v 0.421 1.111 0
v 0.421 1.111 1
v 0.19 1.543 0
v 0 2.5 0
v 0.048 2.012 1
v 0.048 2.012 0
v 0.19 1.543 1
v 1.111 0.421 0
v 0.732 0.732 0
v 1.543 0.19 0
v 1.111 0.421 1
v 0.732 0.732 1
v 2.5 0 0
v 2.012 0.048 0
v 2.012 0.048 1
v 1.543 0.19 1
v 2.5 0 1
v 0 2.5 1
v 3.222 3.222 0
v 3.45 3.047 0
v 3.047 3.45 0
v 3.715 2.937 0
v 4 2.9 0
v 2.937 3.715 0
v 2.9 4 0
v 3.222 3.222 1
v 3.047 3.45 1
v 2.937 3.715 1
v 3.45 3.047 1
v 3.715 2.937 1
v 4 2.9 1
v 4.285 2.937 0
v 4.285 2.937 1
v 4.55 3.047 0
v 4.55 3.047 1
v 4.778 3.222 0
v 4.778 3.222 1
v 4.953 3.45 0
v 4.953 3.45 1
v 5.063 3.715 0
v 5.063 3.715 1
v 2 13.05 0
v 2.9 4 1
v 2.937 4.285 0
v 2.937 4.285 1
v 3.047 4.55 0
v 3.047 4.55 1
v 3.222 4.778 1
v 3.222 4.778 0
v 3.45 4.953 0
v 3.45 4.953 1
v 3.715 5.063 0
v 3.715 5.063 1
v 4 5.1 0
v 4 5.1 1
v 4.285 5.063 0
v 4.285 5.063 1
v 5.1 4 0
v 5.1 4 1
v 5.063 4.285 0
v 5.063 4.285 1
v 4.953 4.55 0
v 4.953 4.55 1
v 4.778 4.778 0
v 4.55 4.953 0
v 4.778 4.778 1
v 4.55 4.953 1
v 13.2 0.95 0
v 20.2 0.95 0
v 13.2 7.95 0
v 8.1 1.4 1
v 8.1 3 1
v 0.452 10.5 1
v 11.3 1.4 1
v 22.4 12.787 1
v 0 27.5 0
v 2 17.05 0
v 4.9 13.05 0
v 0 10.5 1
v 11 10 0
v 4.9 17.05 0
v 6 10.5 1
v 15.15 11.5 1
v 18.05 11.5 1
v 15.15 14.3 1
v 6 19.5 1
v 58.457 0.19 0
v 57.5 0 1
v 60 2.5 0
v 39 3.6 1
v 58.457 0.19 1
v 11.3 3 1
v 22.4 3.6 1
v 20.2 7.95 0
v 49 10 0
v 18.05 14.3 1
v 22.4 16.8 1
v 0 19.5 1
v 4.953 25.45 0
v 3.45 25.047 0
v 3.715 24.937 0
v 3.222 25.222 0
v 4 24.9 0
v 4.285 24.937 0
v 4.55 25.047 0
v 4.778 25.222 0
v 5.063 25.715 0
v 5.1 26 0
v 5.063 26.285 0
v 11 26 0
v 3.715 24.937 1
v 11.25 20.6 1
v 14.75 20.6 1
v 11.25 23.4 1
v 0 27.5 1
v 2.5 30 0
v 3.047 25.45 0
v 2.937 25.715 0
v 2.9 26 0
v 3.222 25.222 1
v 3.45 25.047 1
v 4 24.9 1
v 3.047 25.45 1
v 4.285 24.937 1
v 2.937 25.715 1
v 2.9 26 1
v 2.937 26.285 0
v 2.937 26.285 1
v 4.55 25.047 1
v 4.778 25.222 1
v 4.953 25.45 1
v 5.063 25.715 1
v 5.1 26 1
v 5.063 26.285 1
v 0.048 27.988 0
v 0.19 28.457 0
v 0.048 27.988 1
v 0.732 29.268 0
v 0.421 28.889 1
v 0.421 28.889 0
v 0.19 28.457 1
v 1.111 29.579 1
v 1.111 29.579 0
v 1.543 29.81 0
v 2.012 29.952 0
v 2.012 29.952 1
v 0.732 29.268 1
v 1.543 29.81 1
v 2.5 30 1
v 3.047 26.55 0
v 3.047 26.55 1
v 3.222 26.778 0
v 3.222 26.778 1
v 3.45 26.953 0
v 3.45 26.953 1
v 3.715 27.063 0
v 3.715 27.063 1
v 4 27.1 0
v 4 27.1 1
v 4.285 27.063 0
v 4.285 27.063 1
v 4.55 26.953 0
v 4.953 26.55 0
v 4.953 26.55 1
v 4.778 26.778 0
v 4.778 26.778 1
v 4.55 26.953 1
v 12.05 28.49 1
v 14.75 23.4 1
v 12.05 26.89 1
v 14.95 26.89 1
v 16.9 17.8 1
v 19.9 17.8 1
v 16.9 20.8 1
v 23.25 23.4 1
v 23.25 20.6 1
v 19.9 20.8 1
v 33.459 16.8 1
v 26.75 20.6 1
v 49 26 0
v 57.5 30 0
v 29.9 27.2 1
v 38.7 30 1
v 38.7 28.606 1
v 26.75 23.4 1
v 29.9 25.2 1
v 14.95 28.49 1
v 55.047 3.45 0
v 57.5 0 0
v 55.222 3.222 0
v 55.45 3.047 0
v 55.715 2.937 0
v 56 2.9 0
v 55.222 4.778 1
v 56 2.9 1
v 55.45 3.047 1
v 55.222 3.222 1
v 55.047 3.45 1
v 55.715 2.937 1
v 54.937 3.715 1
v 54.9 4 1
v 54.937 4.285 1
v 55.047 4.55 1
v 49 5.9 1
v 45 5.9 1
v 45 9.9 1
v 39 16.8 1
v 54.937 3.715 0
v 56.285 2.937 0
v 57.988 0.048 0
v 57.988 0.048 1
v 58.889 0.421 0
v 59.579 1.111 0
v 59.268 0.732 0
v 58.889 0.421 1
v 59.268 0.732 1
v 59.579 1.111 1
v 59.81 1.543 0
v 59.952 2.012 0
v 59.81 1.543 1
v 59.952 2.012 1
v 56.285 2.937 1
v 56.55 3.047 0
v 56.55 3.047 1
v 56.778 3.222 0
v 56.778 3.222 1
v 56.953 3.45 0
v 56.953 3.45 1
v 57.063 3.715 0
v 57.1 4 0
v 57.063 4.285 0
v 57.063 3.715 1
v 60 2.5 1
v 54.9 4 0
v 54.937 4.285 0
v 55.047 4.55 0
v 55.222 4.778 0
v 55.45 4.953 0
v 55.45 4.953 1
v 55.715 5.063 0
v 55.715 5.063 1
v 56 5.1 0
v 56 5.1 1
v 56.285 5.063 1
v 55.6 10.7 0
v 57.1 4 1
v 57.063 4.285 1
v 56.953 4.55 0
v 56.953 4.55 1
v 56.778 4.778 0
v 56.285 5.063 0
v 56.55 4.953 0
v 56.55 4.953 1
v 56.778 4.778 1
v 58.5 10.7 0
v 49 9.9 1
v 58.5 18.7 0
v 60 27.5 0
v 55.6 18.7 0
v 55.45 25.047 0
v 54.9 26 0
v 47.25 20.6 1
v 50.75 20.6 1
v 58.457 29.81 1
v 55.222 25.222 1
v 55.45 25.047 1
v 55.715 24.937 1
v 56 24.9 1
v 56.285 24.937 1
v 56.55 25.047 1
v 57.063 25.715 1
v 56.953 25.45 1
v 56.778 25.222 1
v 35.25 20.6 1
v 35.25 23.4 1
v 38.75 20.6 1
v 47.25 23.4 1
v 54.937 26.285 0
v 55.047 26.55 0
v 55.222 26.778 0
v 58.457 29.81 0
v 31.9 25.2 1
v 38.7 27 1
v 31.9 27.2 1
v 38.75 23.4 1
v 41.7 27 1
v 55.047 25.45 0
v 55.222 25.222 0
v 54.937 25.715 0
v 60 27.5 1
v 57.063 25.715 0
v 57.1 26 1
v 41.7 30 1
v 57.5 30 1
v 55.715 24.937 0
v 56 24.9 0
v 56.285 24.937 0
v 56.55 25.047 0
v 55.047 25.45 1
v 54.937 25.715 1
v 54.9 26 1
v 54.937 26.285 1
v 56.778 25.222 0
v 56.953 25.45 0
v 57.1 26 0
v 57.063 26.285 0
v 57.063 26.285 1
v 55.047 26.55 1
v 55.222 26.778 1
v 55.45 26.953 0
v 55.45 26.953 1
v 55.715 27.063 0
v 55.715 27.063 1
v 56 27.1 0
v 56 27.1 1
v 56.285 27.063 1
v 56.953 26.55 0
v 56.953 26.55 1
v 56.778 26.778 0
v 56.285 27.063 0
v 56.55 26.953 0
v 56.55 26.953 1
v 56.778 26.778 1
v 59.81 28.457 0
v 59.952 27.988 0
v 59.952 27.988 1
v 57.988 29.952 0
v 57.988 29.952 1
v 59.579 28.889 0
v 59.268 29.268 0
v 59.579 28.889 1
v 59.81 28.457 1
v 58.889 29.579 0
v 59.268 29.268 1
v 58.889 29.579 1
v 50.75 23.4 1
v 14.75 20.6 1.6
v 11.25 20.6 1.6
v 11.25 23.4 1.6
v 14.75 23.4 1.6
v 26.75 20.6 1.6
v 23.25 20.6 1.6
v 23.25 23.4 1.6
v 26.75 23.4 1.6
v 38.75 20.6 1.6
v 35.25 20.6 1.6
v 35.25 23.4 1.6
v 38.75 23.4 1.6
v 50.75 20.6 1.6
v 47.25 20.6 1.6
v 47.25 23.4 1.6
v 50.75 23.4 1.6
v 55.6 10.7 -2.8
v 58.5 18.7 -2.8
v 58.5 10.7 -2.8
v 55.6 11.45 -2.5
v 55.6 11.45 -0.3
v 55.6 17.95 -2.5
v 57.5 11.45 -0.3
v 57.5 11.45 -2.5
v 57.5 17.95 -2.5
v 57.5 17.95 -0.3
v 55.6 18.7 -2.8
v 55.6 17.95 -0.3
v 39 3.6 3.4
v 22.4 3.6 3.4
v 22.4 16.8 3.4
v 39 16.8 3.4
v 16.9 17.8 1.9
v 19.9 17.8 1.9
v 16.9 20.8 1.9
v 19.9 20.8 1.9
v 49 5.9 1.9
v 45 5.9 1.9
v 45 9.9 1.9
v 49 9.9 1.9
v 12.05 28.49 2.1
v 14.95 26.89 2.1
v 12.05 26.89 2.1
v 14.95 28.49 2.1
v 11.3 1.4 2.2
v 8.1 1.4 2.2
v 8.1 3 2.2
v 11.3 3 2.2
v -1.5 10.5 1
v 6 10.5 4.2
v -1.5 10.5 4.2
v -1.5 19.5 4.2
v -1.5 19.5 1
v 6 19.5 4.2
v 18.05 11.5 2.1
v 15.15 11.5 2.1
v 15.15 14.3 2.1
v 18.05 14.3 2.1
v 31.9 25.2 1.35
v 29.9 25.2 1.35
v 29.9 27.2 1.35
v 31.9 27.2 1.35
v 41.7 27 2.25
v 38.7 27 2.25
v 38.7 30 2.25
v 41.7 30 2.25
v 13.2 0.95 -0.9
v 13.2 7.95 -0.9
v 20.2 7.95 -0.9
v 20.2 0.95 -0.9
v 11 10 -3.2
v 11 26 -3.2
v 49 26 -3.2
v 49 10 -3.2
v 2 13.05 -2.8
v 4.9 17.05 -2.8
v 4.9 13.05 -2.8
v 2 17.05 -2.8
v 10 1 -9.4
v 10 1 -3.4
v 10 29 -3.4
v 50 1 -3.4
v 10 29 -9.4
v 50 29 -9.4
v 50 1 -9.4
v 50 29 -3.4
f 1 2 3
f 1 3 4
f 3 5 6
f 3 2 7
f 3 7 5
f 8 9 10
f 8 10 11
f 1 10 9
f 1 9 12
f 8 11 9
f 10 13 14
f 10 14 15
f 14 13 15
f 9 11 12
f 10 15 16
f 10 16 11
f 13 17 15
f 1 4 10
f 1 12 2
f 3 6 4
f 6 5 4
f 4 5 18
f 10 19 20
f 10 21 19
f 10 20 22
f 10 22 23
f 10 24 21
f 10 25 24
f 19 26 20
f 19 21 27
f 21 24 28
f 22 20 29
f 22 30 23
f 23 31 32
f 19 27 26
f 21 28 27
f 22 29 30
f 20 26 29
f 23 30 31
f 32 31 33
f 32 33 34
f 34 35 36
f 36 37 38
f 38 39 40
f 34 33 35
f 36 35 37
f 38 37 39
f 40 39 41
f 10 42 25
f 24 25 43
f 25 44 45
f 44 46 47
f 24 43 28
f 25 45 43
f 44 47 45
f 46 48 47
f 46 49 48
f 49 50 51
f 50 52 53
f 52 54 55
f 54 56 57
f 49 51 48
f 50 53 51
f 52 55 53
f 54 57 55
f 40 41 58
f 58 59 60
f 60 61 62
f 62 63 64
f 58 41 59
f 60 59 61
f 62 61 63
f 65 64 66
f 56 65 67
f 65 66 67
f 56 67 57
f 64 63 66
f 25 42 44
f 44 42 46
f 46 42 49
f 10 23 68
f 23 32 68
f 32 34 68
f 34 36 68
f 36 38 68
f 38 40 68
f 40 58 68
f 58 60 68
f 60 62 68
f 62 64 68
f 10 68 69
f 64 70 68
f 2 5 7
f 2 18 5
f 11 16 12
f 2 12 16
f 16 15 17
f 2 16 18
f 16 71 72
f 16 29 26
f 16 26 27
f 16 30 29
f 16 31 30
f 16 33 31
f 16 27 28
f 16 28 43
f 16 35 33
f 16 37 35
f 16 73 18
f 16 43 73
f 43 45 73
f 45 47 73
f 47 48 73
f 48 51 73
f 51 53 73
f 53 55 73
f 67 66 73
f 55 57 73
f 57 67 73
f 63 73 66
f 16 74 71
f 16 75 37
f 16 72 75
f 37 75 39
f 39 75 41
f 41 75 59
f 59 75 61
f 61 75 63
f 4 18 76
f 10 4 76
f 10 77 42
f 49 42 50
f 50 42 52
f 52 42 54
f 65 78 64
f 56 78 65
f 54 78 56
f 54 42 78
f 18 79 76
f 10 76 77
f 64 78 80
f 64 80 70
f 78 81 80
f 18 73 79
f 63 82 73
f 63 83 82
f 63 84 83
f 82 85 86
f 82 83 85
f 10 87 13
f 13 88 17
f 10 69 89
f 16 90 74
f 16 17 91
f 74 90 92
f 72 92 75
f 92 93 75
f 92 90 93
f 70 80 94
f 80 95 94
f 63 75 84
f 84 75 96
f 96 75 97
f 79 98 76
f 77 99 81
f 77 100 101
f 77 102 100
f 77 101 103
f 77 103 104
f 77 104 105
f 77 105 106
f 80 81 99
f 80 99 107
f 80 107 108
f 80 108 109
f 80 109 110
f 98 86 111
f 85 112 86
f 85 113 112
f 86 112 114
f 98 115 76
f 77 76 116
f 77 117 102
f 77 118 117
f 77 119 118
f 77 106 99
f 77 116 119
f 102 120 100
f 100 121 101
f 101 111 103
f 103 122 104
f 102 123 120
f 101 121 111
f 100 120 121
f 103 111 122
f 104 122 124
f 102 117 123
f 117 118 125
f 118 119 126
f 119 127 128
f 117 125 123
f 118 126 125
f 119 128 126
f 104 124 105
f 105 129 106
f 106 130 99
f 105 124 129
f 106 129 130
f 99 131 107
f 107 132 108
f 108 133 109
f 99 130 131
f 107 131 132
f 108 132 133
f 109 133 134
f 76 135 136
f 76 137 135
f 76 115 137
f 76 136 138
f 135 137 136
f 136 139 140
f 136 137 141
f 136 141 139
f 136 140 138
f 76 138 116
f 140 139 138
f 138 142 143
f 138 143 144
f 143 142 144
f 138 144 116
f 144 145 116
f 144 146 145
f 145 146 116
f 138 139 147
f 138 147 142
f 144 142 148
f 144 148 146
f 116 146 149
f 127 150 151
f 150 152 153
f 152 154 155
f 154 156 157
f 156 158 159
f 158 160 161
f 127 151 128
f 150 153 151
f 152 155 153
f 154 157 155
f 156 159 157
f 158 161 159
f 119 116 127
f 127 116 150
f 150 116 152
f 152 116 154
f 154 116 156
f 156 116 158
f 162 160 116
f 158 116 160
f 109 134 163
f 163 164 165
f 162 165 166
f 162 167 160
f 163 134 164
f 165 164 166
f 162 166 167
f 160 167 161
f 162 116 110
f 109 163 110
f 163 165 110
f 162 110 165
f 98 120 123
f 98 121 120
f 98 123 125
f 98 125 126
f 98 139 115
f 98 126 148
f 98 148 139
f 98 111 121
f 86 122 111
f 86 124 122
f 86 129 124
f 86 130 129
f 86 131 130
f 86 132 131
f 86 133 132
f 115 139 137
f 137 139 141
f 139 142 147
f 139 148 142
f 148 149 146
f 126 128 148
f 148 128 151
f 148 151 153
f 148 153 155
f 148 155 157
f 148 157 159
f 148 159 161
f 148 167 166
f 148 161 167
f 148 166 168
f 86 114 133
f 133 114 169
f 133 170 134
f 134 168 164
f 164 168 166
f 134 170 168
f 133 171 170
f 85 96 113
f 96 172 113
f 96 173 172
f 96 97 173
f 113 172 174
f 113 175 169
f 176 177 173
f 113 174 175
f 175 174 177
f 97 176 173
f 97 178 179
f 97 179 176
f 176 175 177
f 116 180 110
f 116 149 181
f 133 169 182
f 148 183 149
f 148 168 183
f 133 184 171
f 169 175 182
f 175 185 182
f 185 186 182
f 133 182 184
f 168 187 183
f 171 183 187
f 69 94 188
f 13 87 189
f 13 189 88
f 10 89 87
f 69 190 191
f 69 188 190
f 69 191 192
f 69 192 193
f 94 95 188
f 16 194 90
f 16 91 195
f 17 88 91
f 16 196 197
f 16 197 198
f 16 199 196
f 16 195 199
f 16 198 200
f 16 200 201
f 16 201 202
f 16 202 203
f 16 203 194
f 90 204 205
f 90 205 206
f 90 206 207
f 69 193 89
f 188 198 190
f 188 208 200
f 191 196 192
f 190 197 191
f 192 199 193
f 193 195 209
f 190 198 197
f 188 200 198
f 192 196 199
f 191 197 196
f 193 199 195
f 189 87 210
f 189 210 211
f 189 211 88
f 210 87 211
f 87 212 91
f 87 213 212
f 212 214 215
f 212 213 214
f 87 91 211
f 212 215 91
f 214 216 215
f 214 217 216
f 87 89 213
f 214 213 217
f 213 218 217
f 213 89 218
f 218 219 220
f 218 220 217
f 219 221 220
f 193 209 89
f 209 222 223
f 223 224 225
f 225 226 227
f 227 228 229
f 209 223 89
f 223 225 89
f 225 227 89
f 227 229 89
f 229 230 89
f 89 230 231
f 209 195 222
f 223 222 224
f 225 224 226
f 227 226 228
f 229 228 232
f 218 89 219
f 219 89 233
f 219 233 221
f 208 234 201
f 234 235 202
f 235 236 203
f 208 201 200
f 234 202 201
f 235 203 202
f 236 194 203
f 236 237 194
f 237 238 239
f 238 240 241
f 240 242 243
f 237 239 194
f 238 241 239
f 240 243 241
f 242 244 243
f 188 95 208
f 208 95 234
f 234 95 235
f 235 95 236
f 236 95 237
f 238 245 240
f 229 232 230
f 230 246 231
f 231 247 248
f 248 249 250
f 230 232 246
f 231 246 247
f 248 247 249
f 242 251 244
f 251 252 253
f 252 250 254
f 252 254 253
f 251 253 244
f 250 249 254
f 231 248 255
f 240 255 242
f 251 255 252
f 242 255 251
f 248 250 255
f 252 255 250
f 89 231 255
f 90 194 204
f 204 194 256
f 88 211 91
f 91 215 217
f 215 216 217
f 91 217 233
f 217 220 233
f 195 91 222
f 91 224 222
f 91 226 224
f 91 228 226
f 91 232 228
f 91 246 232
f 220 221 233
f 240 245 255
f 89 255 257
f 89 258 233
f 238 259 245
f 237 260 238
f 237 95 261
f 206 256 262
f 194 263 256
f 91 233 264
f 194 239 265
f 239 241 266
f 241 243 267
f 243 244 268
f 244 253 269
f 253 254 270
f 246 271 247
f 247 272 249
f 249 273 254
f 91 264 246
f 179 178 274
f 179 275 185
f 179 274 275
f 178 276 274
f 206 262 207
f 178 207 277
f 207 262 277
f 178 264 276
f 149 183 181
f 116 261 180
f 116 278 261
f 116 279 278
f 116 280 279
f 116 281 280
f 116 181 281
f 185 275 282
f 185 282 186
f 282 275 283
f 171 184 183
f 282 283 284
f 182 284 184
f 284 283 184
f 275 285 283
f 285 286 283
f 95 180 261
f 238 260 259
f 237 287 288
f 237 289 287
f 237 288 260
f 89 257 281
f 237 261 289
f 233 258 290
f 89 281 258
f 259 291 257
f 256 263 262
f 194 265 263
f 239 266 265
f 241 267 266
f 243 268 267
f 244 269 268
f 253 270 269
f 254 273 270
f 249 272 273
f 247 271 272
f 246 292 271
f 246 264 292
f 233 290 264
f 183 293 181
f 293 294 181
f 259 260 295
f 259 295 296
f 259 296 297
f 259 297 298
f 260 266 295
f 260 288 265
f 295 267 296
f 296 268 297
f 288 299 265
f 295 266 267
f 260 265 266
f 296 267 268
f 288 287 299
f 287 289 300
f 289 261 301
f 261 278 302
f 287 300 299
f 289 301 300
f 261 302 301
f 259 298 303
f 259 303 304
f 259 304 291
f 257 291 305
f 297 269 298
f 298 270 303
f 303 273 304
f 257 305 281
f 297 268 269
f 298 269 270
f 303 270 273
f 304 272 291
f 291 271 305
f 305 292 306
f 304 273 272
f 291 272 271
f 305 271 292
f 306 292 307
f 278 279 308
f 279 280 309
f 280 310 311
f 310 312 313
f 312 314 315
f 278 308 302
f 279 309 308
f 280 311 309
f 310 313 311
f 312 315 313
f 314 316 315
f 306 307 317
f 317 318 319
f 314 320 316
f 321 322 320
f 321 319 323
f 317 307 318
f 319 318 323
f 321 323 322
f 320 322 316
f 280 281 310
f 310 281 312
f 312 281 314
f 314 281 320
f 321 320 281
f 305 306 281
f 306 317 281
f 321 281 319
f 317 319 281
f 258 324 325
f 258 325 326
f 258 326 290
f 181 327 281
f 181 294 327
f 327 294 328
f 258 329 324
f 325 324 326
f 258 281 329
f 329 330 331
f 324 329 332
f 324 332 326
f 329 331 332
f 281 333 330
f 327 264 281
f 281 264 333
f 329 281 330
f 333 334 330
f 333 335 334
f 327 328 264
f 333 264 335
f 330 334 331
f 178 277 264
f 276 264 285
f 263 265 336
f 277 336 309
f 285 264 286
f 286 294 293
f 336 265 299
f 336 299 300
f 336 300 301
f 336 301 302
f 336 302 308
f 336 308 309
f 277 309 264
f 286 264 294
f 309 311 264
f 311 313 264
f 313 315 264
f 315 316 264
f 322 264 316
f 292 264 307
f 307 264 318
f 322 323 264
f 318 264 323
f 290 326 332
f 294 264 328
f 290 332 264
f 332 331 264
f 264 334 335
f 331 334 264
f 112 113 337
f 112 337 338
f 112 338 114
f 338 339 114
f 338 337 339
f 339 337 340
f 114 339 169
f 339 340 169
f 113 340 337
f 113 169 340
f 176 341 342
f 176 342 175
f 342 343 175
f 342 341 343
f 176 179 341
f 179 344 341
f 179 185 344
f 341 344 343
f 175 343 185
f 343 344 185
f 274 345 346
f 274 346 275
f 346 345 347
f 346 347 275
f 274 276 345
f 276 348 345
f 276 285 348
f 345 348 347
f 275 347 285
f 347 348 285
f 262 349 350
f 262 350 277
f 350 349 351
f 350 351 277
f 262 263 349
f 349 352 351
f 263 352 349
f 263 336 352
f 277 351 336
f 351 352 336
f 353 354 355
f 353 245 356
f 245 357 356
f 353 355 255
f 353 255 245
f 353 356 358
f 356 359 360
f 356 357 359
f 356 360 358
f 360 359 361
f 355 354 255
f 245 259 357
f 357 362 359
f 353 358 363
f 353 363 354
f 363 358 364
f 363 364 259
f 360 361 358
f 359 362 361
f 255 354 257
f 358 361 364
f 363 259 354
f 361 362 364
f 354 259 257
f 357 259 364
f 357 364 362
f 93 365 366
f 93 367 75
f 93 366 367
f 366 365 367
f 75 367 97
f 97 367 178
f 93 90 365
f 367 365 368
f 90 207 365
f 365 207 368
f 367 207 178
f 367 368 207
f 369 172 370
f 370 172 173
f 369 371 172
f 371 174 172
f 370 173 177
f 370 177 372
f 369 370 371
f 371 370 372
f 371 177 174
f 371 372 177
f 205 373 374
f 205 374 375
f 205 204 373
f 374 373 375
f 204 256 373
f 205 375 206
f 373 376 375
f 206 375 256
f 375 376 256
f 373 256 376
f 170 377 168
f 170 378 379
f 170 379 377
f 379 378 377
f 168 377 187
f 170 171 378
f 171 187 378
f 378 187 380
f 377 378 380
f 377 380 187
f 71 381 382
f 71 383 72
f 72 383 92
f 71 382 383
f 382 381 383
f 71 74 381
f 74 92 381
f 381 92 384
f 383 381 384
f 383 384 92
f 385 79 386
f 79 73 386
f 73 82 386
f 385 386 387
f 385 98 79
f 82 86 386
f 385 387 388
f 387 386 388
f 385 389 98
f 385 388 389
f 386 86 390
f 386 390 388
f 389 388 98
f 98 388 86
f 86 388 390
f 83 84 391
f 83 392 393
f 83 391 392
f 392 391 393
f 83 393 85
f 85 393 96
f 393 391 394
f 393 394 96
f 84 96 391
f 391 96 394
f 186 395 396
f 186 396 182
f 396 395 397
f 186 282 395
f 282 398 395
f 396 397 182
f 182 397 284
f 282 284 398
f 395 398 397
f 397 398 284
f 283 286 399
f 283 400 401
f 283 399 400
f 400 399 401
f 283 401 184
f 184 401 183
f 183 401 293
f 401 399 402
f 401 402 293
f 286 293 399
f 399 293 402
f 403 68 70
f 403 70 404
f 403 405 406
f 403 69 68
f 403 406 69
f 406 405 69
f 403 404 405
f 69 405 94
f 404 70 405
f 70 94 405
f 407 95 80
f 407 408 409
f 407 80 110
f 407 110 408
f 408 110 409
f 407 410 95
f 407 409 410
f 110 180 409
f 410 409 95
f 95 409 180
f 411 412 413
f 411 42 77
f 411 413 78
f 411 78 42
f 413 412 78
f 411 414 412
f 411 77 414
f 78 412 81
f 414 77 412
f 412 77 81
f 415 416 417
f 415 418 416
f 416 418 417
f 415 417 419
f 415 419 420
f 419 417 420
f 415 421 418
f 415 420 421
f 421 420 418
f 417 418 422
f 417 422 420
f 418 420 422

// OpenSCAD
// =============================================================================
// OpenMotorBridge - Dummy 3D Model: Universal OMM Tri-Band UCS PCBA (PCBA 09/10)
// =============================================================================
// File: hardware/cad/scad/00_common/dummies/dummy_omm_ucs_pcb.scad
// Description: Unified 3D CAD model of the Universal OMM Tri-Band UCS PCB
//              (2.4 GHz Mesh + BT Classic/BLE Bridge + 446 MHz PMR/DMR + 1000 mAh LiPo).
//              Delegates directly to dummy_omm446_ucs_pcb() as both OMM variants
//              have been unified onto the single Universal Tri-Band PCB with
//              100% software-defined mode switching.
// =============================================================================

include <../parameters.scad>;
use <dummy_omm446_ucs_pcb.scad>;

module dummy_omm_ucs_pcb(include_battery = true) {
    dummy_omm446_ucs_pcb(include_battery = include_battery);
}

// Standalone Render Preview
dummy_omm_ucs_pcb();
